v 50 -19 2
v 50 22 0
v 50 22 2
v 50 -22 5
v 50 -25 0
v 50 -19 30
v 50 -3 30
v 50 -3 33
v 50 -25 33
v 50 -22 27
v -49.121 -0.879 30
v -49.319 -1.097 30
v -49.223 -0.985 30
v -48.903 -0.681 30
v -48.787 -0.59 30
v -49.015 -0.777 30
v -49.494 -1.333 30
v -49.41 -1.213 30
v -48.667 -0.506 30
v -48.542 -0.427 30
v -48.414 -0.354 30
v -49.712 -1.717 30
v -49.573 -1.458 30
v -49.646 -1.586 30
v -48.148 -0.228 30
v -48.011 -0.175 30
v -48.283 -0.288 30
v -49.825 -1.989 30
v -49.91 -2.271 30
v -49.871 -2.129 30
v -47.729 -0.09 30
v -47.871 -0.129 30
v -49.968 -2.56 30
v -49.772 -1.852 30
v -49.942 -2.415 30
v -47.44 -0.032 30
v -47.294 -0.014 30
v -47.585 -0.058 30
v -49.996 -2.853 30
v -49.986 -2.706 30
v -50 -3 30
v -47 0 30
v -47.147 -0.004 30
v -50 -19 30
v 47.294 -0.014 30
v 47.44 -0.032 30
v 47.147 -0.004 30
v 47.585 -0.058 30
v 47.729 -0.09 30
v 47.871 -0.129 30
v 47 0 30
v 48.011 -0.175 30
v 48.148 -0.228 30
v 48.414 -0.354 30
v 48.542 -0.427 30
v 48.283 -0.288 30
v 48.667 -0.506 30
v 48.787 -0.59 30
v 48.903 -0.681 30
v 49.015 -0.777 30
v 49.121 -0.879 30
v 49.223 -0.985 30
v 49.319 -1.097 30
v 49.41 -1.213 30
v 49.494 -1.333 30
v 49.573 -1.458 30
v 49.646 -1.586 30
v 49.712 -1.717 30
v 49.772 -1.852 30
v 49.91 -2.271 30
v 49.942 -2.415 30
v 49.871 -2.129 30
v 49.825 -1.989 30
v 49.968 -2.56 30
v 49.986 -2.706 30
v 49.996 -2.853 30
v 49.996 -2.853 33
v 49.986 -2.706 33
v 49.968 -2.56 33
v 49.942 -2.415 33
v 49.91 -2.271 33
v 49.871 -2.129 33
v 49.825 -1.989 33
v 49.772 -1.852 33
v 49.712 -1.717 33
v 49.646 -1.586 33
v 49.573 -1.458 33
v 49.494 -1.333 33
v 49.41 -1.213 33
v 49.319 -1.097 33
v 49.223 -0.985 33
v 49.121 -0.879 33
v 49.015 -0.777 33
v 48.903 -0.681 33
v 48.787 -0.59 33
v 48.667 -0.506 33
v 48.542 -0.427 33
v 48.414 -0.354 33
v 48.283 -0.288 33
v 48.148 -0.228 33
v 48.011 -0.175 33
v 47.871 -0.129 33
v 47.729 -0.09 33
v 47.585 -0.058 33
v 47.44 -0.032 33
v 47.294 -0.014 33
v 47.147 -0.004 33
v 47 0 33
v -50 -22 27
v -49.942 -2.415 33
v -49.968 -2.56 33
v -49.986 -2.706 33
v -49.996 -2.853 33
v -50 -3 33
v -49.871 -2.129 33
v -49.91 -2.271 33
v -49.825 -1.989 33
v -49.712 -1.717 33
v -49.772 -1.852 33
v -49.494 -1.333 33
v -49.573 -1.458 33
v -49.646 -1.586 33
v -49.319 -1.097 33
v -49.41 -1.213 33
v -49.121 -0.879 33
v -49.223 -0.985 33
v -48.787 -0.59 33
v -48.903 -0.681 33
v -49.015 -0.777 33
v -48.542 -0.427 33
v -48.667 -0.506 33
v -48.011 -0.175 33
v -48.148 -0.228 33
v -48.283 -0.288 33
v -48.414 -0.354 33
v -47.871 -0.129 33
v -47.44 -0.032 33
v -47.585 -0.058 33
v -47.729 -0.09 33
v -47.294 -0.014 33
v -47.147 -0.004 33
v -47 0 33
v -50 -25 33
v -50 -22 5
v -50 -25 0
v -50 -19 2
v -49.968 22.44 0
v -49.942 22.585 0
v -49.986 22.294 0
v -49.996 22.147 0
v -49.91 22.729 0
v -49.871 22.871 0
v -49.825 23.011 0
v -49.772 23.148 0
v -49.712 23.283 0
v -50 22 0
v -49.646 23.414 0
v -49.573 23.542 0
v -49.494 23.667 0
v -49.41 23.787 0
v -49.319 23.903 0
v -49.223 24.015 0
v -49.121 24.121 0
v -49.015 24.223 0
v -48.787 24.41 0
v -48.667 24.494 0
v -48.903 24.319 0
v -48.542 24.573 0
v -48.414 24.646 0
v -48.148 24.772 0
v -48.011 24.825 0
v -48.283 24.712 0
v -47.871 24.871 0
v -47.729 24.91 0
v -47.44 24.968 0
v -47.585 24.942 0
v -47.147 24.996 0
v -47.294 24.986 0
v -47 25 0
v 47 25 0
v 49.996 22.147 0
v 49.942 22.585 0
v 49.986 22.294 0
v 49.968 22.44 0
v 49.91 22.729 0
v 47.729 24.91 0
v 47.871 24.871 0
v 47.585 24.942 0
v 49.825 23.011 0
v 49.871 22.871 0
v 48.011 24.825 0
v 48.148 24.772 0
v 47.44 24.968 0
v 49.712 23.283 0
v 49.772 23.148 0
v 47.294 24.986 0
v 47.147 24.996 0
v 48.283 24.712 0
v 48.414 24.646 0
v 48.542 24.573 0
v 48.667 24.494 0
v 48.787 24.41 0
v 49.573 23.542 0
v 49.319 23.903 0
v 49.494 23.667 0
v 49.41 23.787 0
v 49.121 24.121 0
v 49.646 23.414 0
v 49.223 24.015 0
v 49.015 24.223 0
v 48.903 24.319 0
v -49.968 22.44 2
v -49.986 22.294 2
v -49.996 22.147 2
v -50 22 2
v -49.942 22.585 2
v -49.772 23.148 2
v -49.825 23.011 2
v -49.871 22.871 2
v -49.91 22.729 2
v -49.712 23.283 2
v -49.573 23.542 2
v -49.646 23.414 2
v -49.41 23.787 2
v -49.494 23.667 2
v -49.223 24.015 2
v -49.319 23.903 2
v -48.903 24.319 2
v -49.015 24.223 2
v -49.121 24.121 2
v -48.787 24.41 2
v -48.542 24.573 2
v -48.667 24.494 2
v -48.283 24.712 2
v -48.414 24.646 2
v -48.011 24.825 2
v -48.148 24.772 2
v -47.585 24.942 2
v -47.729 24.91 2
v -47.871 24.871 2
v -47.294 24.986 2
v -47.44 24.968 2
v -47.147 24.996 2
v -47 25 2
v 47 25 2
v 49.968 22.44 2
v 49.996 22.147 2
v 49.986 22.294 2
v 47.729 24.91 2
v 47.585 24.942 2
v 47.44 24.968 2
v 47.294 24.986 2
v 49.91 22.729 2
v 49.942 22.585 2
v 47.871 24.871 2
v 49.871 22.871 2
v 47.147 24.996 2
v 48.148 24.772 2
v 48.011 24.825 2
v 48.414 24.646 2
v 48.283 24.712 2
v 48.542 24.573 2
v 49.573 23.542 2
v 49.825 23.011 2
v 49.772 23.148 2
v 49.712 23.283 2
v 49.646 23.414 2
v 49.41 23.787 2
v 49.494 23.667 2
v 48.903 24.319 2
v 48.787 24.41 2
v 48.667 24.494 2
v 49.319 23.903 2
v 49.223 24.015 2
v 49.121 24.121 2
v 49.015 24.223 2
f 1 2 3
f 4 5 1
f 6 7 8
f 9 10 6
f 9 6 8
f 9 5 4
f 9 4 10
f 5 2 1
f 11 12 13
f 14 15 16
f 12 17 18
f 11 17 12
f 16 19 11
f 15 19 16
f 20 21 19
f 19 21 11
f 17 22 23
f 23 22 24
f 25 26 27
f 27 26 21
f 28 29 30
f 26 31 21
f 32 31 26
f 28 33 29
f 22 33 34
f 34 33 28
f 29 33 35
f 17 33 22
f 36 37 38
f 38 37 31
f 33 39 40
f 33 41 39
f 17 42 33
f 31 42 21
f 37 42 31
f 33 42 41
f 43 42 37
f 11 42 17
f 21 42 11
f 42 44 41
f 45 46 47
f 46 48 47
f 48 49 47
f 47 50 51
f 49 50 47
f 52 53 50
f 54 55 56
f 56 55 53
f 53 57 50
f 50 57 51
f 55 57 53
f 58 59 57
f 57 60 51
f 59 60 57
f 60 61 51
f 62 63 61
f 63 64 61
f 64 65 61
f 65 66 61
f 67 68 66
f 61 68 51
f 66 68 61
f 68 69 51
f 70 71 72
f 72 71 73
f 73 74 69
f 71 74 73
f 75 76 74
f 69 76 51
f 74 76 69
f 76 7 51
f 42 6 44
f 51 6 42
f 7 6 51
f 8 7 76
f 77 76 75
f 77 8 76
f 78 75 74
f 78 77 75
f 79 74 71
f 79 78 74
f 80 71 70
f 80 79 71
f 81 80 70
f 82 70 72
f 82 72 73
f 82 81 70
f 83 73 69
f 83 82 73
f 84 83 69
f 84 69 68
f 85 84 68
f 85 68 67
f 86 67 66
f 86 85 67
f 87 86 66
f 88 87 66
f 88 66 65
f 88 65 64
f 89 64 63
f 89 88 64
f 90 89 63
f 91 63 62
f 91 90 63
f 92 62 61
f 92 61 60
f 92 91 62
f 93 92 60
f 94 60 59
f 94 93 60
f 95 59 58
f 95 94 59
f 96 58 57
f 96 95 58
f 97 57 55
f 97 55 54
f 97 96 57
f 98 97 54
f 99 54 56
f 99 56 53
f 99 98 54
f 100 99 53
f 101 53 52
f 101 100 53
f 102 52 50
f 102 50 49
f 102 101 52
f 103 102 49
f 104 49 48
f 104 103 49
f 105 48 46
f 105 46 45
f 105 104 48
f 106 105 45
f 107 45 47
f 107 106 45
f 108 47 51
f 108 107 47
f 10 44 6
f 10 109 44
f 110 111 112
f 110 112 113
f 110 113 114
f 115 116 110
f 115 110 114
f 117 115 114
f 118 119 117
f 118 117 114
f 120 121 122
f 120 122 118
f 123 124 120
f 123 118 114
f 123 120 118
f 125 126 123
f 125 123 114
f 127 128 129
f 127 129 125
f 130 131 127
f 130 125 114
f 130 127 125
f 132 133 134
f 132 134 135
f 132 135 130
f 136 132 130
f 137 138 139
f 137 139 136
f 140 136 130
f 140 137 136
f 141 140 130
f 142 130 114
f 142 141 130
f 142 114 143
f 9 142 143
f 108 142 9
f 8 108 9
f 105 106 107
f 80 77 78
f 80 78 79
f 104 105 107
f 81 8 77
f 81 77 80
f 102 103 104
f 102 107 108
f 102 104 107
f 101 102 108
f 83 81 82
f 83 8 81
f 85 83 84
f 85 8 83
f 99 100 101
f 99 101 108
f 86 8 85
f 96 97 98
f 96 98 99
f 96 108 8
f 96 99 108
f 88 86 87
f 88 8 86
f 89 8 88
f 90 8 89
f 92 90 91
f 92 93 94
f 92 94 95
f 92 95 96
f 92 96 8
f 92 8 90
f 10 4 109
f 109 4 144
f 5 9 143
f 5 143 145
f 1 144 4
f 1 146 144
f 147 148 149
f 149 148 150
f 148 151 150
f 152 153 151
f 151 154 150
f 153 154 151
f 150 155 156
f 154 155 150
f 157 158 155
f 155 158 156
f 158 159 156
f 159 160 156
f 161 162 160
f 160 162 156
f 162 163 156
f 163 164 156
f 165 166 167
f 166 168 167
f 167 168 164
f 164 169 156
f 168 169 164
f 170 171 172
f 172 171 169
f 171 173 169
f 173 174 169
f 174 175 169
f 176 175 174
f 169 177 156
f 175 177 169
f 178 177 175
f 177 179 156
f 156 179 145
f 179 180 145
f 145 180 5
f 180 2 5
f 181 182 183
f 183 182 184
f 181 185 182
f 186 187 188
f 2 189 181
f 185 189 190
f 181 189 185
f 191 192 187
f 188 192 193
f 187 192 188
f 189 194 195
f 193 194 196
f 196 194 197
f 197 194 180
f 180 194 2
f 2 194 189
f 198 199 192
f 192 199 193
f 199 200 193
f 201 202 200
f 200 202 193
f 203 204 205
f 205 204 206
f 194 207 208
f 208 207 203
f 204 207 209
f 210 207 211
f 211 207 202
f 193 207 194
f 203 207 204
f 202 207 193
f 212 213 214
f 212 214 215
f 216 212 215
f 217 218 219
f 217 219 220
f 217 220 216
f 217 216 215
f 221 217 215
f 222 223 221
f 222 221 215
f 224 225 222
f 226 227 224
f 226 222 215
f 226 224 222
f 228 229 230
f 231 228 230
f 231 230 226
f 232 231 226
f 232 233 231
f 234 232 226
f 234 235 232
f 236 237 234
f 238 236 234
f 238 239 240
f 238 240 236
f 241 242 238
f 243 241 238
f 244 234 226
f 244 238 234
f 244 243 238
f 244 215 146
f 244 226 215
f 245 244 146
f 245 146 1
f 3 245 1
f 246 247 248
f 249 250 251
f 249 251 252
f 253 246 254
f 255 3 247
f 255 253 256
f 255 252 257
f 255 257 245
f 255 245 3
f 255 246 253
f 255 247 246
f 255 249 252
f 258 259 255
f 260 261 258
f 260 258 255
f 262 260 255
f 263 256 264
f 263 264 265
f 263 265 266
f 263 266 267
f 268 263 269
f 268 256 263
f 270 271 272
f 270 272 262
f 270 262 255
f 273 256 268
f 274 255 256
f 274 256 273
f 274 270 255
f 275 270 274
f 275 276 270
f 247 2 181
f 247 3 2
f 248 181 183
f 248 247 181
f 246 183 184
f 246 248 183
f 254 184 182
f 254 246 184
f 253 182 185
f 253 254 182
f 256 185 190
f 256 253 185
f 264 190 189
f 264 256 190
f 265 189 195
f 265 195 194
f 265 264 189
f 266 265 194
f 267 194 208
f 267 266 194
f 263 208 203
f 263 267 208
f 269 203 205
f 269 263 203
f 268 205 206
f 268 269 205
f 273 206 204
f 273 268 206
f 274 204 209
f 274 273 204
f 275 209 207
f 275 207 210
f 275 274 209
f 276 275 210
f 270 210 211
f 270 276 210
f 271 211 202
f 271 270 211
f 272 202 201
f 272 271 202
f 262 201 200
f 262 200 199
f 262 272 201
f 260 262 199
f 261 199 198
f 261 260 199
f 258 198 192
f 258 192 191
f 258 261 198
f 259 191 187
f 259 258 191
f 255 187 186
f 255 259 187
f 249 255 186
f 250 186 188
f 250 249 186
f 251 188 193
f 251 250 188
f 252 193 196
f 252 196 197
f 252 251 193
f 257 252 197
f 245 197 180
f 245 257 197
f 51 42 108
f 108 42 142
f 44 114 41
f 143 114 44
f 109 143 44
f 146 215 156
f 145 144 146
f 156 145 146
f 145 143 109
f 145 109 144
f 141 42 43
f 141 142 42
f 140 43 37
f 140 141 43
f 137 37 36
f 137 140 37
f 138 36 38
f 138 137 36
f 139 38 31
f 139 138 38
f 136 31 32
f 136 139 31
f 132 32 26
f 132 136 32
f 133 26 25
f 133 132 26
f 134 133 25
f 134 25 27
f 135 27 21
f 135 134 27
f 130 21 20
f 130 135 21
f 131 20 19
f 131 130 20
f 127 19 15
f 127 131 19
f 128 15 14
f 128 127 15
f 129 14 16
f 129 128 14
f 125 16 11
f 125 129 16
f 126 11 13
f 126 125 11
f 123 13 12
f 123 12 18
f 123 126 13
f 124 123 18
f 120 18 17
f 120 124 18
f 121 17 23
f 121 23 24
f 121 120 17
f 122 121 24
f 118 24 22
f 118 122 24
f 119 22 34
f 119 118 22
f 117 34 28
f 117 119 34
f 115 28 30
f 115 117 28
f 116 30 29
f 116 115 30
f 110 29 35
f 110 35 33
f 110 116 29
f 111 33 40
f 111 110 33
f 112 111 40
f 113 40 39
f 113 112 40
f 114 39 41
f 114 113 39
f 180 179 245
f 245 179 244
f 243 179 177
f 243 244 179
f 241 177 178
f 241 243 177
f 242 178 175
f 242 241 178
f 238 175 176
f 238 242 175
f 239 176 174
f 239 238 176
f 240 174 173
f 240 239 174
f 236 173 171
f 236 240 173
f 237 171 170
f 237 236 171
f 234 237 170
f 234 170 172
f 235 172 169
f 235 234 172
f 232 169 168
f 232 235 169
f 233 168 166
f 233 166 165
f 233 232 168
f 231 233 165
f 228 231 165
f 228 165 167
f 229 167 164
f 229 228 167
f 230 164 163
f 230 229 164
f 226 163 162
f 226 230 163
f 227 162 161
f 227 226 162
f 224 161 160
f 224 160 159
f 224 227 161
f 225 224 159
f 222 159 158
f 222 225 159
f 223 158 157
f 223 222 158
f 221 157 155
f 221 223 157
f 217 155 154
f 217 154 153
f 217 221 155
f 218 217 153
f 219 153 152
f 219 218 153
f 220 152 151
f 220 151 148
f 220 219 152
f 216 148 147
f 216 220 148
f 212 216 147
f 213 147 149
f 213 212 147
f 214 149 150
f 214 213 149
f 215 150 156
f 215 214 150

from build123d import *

# Parameters (mm, degrees)
SKETCH_W     = 100
SKETCH_H     = 50
PAD_DEPTH    = 2
SKETCH001_W  = 100
SKETCH001_H  = 25
PAD001_DEPTH = 31
SKETCH002_W  = 26
SKETCH002_H  = 28
POCKET_DEPTH = 100
CHAMFER_SIZE = 3
FILLET_R     = 3


with BuildPart() as part:
    # Sketch → Pad (new body)
    with BuildSketch(Plane.XY):
        Rectangle(SKETCH_W, SKETCH_H)
    extrude(amount=PAD_DEPTH)

    # Sketch001 (on Face6 of Pad) → Pad001 (join)
    with BuildSketch(Plane.XY.offset(2)):
        with Locations((0, -12.5)):
            Rectangle(SKETCH001_W, SKETCH001_H)
    extrude(amount=PAD001_DEPTH)

    # Sketch002 (on Face8 of Pad001) → Pocket (cut)
    with BuildSketch(Plane.YZ.offset(50)):
        with Locations((-9, 16)):
            Rectangle(SKETCH002_W, SKETCH002_H)
    extrude(amount=-POCKET_DEPTH, mode=Mode.SUBTRACT)

    # Chamfer
    chamfer_edges = [part.edges().sort_by_distance(p)[0] for p in [
        (0, -22, 2),
        (0, -22, 30),
    ]]
    chamfer(chamfer_edges, length=CHAMFER_SIZE)

    # Fillet
    fillet_edges = [part.edges().sort_by_distance(p)[0] for p in [
        (50, 25, 1),
        (-50, 25, 1),
        (-50, 0, 31.5),
        (50, 0, 31.5),
    ]]
    fillet(fillet_edges, radius=FILLET_R)


solid = part.part
